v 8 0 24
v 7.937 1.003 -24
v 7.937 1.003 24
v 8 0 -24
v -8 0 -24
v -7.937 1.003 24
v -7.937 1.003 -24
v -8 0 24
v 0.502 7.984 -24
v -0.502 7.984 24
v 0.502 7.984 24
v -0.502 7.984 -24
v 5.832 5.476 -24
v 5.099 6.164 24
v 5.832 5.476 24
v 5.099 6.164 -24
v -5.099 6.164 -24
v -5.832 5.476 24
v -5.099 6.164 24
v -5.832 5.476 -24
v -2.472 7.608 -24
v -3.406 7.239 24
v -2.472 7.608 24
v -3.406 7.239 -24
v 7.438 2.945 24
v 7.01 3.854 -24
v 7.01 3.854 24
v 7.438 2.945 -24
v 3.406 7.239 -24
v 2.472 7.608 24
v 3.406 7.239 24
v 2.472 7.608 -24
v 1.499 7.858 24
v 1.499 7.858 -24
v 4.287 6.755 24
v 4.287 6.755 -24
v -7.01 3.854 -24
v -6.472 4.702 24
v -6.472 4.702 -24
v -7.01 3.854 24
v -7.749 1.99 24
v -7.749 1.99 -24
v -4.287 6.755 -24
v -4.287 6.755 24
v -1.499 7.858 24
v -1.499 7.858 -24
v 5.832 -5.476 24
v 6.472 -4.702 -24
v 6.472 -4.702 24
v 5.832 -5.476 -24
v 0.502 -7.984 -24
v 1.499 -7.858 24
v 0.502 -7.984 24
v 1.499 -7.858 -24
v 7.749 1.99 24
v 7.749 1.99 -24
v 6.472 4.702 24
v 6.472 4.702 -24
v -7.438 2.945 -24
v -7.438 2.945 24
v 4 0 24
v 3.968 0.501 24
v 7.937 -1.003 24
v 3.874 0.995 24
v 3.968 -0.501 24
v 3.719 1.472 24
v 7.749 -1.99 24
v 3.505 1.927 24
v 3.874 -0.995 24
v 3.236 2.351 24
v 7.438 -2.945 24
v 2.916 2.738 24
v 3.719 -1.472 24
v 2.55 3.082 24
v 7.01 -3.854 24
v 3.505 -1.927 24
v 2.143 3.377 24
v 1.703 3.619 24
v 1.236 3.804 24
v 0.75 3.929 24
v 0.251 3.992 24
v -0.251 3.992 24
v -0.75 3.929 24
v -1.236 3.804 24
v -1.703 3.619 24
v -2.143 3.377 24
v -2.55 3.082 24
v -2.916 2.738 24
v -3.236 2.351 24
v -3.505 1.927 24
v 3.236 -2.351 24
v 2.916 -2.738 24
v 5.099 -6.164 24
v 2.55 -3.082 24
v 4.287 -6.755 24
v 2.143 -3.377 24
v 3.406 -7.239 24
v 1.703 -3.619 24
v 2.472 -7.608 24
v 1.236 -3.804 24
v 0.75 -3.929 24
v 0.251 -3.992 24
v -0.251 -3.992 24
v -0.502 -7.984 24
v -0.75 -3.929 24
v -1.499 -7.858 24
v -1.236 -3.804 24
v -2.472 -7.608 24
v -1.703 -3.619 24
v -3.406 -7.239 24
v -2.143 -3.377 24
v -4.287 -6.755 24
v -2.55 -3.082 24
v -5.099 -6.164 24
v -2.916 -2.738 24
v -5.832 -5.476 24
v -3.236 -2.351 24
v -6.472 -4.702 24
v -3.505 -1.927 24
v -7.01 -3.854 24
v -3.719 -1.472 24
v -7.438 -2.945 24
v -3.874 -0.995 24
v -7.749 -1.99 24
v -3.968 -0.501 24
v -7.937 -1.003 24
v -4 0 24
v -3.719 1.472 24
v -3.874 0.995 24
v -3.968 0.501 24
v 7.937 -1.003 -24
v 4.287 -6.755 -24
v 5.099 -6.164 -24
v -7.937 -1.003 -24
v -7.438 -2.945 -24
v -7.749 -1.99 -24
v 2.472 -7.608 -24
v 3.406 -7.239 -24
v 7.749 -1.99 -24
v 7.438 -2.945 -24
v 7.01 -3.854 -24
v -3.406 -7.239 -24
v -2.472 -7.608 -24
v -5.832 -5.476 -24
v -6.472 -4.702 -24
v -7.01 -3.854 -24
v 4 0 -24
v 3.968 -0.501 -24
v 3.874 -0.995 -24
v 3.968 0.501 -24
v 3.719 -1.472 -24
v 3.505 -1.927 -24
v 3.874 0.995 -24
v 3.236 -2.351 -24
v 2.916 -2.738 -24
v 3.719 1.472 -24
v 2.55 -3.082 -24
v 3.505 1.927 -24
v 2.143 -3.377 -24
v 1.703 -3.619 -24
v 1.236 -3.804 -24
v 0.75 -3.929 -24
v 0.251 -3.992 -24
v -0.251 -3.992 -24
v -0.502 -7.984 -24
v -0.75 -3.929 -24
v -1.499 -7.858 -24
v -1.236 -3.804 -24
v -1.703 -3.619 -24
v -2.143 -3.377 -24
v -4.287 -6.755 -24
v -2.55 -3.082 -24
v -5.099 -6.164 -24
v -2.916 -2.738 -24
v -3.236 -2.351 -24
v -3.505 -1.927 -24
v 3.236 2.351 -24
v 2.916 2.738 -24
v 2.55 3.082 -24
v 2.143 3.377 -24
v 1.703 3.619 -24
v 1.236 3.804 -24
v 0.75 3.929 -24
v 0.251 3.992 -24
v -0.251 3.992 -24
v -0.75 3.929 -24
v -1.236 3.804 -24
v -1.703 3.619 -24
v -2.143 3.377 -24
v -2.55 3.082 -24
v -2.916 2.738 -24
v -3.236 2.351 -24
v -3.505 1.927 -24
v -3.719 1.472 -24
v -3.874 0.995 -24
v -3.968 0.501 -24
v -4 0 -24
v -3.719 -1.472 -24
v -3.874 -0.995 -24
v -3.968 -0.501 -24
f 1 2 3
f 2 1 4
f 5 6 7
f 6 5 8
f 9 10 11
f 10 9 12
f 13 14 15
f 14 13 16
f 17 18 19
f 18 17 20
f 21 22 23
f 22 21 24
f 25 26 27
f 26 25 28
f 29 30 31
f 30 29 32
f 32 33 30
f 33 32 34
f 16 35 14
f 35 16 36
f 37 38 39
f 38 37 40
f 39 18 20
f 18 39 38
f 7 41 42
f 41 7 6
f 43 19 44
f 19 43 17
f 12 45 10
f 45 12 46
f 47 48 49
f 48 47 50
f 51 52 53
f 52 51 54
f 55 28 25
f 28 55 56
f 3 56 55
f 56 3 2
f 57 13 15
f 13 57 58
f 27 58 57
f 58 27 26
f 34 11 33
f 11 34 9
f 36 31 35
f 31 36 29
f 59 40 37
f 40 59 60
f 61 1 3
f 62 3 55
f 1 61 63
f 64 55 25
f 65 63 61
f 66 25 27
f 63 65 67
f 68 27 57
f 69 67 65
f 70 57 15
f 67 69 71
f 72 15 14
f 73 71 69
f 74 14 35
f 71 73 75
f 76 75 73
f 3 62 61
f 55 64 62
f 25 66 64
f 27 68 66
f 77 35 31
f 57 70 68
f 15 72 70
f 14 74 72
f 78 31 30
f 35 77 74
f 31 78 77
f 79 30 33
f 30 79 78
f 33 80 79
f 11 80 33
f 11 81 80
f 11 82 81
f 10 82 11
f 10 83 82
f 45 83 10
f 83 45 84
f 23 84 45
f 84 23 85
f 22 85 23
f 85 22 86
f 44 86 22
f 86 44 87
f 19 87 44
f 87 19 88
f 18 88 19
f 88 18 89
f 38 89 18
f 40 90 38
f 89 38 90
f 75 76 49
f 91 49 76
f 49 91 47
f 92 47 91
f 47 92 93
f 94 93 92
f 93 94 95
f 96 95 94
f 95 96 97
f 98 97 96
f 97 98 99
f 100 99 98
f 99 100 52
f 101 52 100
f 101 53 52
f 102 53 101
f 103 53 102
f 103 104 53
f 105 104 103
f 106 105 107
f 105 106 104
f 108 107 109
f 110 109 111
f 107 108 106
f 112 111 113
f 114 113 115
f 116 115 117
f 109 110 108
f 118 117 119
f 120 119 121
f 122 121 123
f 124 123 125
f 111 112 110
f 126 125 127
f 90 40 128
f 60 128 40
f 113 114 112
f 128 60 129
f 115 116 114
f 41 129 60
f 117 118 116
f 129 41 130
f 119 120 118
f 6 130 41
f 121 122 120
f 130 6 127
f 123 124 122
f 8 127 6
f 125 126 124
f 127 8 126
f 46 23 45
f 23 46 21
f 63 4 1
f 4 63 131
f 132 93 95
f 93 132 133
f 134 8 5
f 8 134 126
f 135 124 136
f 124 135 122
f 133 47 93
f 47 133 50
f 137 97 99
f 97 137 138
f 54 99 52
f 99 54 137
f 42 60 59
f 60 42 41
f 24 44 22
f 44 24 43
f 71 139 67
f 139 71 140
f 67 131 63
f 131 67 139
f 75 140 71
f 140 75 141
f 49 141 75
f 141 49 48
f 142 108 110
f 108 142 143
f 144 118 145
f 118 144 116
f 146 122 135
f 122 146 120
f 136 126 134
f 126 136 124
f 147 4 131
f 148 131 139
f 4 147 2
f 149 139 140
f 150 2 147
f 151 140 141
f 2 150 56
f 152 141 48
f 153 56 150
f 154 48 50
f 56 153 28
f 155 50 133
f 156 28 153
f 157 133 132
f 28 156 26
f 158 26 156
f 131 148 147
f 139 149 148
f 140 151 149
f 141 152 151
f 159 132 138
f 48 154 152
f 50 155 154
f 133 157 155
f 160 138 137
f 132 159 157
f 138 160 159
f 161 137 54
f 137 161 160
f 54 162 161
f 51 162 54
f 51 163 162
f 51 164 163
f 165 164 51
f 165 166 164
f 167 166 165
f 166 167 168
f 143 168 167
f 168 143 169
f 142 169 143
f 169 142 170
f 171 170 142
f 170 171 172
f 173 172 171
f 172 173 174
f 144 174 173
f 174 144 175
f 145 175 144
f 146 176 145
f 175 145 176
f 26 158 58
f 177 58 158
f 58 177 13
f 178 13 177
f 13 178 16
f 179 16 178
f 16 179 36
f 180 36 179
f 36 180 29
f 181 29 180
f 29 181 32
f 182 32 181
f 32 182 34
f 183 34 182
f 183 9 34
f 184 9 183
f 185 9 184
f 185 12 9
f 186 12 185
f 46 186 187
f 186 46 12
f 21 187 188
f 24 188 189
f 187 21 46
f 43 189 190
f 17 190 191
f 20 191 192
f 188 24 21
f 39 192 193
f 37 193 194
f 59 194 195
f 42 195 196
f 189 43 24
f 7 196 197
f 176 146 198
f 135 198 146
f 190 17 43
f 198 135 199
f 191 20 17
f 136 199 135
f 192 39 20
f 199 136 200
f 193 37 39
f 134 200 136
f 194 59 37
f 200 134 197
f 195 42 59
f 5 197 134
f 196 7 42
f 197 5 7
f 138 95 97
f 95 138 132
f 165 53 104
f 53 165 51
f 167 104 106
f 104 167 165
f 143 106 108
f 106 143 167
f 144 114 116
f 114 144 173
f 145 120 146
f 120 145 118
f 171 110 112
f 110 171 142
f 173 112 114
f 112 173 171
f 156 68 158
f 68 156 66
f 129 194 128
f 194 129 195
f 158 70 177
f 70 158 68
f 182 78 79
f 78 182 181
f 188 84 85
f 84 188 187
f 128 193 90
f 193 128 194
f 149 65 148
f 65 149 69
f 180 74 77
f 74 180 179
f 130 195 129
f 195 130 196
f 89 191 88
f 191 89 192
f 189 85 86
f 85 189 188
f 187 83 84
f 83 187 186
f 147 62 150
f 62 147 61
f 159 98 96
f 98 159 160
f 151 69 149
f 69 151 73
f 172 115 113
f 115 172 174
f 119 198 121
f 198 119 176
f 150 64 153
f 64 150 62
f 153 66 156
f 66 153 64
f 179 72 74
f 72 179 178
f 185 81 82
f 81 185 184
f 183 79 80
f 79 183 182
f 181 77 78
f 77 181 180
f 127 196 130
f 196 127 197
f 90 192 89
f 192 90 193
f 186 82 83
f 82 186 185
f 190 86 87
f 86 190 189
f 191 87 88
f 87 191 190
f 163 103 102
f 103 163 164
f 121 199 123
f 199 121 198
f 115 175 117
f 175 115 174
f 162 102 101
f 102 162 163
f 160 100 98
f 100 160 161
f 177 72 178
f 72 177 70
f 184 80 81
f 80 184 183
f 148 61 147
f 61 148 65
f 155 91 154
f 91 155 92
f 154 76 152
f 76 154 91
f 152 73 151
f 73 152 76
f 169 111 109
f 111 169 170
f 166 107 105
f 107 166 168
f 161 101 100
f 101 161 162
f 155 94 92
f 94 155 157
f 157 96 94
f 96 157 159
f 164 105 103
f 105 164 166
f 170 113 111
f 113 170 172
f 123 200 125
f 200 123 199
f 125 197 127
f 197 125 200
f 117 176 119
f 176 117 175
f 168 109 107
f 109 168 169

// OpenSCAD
$fn = 50;


difference() {
	union() {
		translate(v = [0, 0, -24.0000000000]) {
			cylinder(h = 48, r = 8.0000000000);
		}
	}
	union() {
		translate(v = [0, 0, -100.0000000000]) {
			cylinder(h = 200, r = 4.0000000000);
		}
	}
}
